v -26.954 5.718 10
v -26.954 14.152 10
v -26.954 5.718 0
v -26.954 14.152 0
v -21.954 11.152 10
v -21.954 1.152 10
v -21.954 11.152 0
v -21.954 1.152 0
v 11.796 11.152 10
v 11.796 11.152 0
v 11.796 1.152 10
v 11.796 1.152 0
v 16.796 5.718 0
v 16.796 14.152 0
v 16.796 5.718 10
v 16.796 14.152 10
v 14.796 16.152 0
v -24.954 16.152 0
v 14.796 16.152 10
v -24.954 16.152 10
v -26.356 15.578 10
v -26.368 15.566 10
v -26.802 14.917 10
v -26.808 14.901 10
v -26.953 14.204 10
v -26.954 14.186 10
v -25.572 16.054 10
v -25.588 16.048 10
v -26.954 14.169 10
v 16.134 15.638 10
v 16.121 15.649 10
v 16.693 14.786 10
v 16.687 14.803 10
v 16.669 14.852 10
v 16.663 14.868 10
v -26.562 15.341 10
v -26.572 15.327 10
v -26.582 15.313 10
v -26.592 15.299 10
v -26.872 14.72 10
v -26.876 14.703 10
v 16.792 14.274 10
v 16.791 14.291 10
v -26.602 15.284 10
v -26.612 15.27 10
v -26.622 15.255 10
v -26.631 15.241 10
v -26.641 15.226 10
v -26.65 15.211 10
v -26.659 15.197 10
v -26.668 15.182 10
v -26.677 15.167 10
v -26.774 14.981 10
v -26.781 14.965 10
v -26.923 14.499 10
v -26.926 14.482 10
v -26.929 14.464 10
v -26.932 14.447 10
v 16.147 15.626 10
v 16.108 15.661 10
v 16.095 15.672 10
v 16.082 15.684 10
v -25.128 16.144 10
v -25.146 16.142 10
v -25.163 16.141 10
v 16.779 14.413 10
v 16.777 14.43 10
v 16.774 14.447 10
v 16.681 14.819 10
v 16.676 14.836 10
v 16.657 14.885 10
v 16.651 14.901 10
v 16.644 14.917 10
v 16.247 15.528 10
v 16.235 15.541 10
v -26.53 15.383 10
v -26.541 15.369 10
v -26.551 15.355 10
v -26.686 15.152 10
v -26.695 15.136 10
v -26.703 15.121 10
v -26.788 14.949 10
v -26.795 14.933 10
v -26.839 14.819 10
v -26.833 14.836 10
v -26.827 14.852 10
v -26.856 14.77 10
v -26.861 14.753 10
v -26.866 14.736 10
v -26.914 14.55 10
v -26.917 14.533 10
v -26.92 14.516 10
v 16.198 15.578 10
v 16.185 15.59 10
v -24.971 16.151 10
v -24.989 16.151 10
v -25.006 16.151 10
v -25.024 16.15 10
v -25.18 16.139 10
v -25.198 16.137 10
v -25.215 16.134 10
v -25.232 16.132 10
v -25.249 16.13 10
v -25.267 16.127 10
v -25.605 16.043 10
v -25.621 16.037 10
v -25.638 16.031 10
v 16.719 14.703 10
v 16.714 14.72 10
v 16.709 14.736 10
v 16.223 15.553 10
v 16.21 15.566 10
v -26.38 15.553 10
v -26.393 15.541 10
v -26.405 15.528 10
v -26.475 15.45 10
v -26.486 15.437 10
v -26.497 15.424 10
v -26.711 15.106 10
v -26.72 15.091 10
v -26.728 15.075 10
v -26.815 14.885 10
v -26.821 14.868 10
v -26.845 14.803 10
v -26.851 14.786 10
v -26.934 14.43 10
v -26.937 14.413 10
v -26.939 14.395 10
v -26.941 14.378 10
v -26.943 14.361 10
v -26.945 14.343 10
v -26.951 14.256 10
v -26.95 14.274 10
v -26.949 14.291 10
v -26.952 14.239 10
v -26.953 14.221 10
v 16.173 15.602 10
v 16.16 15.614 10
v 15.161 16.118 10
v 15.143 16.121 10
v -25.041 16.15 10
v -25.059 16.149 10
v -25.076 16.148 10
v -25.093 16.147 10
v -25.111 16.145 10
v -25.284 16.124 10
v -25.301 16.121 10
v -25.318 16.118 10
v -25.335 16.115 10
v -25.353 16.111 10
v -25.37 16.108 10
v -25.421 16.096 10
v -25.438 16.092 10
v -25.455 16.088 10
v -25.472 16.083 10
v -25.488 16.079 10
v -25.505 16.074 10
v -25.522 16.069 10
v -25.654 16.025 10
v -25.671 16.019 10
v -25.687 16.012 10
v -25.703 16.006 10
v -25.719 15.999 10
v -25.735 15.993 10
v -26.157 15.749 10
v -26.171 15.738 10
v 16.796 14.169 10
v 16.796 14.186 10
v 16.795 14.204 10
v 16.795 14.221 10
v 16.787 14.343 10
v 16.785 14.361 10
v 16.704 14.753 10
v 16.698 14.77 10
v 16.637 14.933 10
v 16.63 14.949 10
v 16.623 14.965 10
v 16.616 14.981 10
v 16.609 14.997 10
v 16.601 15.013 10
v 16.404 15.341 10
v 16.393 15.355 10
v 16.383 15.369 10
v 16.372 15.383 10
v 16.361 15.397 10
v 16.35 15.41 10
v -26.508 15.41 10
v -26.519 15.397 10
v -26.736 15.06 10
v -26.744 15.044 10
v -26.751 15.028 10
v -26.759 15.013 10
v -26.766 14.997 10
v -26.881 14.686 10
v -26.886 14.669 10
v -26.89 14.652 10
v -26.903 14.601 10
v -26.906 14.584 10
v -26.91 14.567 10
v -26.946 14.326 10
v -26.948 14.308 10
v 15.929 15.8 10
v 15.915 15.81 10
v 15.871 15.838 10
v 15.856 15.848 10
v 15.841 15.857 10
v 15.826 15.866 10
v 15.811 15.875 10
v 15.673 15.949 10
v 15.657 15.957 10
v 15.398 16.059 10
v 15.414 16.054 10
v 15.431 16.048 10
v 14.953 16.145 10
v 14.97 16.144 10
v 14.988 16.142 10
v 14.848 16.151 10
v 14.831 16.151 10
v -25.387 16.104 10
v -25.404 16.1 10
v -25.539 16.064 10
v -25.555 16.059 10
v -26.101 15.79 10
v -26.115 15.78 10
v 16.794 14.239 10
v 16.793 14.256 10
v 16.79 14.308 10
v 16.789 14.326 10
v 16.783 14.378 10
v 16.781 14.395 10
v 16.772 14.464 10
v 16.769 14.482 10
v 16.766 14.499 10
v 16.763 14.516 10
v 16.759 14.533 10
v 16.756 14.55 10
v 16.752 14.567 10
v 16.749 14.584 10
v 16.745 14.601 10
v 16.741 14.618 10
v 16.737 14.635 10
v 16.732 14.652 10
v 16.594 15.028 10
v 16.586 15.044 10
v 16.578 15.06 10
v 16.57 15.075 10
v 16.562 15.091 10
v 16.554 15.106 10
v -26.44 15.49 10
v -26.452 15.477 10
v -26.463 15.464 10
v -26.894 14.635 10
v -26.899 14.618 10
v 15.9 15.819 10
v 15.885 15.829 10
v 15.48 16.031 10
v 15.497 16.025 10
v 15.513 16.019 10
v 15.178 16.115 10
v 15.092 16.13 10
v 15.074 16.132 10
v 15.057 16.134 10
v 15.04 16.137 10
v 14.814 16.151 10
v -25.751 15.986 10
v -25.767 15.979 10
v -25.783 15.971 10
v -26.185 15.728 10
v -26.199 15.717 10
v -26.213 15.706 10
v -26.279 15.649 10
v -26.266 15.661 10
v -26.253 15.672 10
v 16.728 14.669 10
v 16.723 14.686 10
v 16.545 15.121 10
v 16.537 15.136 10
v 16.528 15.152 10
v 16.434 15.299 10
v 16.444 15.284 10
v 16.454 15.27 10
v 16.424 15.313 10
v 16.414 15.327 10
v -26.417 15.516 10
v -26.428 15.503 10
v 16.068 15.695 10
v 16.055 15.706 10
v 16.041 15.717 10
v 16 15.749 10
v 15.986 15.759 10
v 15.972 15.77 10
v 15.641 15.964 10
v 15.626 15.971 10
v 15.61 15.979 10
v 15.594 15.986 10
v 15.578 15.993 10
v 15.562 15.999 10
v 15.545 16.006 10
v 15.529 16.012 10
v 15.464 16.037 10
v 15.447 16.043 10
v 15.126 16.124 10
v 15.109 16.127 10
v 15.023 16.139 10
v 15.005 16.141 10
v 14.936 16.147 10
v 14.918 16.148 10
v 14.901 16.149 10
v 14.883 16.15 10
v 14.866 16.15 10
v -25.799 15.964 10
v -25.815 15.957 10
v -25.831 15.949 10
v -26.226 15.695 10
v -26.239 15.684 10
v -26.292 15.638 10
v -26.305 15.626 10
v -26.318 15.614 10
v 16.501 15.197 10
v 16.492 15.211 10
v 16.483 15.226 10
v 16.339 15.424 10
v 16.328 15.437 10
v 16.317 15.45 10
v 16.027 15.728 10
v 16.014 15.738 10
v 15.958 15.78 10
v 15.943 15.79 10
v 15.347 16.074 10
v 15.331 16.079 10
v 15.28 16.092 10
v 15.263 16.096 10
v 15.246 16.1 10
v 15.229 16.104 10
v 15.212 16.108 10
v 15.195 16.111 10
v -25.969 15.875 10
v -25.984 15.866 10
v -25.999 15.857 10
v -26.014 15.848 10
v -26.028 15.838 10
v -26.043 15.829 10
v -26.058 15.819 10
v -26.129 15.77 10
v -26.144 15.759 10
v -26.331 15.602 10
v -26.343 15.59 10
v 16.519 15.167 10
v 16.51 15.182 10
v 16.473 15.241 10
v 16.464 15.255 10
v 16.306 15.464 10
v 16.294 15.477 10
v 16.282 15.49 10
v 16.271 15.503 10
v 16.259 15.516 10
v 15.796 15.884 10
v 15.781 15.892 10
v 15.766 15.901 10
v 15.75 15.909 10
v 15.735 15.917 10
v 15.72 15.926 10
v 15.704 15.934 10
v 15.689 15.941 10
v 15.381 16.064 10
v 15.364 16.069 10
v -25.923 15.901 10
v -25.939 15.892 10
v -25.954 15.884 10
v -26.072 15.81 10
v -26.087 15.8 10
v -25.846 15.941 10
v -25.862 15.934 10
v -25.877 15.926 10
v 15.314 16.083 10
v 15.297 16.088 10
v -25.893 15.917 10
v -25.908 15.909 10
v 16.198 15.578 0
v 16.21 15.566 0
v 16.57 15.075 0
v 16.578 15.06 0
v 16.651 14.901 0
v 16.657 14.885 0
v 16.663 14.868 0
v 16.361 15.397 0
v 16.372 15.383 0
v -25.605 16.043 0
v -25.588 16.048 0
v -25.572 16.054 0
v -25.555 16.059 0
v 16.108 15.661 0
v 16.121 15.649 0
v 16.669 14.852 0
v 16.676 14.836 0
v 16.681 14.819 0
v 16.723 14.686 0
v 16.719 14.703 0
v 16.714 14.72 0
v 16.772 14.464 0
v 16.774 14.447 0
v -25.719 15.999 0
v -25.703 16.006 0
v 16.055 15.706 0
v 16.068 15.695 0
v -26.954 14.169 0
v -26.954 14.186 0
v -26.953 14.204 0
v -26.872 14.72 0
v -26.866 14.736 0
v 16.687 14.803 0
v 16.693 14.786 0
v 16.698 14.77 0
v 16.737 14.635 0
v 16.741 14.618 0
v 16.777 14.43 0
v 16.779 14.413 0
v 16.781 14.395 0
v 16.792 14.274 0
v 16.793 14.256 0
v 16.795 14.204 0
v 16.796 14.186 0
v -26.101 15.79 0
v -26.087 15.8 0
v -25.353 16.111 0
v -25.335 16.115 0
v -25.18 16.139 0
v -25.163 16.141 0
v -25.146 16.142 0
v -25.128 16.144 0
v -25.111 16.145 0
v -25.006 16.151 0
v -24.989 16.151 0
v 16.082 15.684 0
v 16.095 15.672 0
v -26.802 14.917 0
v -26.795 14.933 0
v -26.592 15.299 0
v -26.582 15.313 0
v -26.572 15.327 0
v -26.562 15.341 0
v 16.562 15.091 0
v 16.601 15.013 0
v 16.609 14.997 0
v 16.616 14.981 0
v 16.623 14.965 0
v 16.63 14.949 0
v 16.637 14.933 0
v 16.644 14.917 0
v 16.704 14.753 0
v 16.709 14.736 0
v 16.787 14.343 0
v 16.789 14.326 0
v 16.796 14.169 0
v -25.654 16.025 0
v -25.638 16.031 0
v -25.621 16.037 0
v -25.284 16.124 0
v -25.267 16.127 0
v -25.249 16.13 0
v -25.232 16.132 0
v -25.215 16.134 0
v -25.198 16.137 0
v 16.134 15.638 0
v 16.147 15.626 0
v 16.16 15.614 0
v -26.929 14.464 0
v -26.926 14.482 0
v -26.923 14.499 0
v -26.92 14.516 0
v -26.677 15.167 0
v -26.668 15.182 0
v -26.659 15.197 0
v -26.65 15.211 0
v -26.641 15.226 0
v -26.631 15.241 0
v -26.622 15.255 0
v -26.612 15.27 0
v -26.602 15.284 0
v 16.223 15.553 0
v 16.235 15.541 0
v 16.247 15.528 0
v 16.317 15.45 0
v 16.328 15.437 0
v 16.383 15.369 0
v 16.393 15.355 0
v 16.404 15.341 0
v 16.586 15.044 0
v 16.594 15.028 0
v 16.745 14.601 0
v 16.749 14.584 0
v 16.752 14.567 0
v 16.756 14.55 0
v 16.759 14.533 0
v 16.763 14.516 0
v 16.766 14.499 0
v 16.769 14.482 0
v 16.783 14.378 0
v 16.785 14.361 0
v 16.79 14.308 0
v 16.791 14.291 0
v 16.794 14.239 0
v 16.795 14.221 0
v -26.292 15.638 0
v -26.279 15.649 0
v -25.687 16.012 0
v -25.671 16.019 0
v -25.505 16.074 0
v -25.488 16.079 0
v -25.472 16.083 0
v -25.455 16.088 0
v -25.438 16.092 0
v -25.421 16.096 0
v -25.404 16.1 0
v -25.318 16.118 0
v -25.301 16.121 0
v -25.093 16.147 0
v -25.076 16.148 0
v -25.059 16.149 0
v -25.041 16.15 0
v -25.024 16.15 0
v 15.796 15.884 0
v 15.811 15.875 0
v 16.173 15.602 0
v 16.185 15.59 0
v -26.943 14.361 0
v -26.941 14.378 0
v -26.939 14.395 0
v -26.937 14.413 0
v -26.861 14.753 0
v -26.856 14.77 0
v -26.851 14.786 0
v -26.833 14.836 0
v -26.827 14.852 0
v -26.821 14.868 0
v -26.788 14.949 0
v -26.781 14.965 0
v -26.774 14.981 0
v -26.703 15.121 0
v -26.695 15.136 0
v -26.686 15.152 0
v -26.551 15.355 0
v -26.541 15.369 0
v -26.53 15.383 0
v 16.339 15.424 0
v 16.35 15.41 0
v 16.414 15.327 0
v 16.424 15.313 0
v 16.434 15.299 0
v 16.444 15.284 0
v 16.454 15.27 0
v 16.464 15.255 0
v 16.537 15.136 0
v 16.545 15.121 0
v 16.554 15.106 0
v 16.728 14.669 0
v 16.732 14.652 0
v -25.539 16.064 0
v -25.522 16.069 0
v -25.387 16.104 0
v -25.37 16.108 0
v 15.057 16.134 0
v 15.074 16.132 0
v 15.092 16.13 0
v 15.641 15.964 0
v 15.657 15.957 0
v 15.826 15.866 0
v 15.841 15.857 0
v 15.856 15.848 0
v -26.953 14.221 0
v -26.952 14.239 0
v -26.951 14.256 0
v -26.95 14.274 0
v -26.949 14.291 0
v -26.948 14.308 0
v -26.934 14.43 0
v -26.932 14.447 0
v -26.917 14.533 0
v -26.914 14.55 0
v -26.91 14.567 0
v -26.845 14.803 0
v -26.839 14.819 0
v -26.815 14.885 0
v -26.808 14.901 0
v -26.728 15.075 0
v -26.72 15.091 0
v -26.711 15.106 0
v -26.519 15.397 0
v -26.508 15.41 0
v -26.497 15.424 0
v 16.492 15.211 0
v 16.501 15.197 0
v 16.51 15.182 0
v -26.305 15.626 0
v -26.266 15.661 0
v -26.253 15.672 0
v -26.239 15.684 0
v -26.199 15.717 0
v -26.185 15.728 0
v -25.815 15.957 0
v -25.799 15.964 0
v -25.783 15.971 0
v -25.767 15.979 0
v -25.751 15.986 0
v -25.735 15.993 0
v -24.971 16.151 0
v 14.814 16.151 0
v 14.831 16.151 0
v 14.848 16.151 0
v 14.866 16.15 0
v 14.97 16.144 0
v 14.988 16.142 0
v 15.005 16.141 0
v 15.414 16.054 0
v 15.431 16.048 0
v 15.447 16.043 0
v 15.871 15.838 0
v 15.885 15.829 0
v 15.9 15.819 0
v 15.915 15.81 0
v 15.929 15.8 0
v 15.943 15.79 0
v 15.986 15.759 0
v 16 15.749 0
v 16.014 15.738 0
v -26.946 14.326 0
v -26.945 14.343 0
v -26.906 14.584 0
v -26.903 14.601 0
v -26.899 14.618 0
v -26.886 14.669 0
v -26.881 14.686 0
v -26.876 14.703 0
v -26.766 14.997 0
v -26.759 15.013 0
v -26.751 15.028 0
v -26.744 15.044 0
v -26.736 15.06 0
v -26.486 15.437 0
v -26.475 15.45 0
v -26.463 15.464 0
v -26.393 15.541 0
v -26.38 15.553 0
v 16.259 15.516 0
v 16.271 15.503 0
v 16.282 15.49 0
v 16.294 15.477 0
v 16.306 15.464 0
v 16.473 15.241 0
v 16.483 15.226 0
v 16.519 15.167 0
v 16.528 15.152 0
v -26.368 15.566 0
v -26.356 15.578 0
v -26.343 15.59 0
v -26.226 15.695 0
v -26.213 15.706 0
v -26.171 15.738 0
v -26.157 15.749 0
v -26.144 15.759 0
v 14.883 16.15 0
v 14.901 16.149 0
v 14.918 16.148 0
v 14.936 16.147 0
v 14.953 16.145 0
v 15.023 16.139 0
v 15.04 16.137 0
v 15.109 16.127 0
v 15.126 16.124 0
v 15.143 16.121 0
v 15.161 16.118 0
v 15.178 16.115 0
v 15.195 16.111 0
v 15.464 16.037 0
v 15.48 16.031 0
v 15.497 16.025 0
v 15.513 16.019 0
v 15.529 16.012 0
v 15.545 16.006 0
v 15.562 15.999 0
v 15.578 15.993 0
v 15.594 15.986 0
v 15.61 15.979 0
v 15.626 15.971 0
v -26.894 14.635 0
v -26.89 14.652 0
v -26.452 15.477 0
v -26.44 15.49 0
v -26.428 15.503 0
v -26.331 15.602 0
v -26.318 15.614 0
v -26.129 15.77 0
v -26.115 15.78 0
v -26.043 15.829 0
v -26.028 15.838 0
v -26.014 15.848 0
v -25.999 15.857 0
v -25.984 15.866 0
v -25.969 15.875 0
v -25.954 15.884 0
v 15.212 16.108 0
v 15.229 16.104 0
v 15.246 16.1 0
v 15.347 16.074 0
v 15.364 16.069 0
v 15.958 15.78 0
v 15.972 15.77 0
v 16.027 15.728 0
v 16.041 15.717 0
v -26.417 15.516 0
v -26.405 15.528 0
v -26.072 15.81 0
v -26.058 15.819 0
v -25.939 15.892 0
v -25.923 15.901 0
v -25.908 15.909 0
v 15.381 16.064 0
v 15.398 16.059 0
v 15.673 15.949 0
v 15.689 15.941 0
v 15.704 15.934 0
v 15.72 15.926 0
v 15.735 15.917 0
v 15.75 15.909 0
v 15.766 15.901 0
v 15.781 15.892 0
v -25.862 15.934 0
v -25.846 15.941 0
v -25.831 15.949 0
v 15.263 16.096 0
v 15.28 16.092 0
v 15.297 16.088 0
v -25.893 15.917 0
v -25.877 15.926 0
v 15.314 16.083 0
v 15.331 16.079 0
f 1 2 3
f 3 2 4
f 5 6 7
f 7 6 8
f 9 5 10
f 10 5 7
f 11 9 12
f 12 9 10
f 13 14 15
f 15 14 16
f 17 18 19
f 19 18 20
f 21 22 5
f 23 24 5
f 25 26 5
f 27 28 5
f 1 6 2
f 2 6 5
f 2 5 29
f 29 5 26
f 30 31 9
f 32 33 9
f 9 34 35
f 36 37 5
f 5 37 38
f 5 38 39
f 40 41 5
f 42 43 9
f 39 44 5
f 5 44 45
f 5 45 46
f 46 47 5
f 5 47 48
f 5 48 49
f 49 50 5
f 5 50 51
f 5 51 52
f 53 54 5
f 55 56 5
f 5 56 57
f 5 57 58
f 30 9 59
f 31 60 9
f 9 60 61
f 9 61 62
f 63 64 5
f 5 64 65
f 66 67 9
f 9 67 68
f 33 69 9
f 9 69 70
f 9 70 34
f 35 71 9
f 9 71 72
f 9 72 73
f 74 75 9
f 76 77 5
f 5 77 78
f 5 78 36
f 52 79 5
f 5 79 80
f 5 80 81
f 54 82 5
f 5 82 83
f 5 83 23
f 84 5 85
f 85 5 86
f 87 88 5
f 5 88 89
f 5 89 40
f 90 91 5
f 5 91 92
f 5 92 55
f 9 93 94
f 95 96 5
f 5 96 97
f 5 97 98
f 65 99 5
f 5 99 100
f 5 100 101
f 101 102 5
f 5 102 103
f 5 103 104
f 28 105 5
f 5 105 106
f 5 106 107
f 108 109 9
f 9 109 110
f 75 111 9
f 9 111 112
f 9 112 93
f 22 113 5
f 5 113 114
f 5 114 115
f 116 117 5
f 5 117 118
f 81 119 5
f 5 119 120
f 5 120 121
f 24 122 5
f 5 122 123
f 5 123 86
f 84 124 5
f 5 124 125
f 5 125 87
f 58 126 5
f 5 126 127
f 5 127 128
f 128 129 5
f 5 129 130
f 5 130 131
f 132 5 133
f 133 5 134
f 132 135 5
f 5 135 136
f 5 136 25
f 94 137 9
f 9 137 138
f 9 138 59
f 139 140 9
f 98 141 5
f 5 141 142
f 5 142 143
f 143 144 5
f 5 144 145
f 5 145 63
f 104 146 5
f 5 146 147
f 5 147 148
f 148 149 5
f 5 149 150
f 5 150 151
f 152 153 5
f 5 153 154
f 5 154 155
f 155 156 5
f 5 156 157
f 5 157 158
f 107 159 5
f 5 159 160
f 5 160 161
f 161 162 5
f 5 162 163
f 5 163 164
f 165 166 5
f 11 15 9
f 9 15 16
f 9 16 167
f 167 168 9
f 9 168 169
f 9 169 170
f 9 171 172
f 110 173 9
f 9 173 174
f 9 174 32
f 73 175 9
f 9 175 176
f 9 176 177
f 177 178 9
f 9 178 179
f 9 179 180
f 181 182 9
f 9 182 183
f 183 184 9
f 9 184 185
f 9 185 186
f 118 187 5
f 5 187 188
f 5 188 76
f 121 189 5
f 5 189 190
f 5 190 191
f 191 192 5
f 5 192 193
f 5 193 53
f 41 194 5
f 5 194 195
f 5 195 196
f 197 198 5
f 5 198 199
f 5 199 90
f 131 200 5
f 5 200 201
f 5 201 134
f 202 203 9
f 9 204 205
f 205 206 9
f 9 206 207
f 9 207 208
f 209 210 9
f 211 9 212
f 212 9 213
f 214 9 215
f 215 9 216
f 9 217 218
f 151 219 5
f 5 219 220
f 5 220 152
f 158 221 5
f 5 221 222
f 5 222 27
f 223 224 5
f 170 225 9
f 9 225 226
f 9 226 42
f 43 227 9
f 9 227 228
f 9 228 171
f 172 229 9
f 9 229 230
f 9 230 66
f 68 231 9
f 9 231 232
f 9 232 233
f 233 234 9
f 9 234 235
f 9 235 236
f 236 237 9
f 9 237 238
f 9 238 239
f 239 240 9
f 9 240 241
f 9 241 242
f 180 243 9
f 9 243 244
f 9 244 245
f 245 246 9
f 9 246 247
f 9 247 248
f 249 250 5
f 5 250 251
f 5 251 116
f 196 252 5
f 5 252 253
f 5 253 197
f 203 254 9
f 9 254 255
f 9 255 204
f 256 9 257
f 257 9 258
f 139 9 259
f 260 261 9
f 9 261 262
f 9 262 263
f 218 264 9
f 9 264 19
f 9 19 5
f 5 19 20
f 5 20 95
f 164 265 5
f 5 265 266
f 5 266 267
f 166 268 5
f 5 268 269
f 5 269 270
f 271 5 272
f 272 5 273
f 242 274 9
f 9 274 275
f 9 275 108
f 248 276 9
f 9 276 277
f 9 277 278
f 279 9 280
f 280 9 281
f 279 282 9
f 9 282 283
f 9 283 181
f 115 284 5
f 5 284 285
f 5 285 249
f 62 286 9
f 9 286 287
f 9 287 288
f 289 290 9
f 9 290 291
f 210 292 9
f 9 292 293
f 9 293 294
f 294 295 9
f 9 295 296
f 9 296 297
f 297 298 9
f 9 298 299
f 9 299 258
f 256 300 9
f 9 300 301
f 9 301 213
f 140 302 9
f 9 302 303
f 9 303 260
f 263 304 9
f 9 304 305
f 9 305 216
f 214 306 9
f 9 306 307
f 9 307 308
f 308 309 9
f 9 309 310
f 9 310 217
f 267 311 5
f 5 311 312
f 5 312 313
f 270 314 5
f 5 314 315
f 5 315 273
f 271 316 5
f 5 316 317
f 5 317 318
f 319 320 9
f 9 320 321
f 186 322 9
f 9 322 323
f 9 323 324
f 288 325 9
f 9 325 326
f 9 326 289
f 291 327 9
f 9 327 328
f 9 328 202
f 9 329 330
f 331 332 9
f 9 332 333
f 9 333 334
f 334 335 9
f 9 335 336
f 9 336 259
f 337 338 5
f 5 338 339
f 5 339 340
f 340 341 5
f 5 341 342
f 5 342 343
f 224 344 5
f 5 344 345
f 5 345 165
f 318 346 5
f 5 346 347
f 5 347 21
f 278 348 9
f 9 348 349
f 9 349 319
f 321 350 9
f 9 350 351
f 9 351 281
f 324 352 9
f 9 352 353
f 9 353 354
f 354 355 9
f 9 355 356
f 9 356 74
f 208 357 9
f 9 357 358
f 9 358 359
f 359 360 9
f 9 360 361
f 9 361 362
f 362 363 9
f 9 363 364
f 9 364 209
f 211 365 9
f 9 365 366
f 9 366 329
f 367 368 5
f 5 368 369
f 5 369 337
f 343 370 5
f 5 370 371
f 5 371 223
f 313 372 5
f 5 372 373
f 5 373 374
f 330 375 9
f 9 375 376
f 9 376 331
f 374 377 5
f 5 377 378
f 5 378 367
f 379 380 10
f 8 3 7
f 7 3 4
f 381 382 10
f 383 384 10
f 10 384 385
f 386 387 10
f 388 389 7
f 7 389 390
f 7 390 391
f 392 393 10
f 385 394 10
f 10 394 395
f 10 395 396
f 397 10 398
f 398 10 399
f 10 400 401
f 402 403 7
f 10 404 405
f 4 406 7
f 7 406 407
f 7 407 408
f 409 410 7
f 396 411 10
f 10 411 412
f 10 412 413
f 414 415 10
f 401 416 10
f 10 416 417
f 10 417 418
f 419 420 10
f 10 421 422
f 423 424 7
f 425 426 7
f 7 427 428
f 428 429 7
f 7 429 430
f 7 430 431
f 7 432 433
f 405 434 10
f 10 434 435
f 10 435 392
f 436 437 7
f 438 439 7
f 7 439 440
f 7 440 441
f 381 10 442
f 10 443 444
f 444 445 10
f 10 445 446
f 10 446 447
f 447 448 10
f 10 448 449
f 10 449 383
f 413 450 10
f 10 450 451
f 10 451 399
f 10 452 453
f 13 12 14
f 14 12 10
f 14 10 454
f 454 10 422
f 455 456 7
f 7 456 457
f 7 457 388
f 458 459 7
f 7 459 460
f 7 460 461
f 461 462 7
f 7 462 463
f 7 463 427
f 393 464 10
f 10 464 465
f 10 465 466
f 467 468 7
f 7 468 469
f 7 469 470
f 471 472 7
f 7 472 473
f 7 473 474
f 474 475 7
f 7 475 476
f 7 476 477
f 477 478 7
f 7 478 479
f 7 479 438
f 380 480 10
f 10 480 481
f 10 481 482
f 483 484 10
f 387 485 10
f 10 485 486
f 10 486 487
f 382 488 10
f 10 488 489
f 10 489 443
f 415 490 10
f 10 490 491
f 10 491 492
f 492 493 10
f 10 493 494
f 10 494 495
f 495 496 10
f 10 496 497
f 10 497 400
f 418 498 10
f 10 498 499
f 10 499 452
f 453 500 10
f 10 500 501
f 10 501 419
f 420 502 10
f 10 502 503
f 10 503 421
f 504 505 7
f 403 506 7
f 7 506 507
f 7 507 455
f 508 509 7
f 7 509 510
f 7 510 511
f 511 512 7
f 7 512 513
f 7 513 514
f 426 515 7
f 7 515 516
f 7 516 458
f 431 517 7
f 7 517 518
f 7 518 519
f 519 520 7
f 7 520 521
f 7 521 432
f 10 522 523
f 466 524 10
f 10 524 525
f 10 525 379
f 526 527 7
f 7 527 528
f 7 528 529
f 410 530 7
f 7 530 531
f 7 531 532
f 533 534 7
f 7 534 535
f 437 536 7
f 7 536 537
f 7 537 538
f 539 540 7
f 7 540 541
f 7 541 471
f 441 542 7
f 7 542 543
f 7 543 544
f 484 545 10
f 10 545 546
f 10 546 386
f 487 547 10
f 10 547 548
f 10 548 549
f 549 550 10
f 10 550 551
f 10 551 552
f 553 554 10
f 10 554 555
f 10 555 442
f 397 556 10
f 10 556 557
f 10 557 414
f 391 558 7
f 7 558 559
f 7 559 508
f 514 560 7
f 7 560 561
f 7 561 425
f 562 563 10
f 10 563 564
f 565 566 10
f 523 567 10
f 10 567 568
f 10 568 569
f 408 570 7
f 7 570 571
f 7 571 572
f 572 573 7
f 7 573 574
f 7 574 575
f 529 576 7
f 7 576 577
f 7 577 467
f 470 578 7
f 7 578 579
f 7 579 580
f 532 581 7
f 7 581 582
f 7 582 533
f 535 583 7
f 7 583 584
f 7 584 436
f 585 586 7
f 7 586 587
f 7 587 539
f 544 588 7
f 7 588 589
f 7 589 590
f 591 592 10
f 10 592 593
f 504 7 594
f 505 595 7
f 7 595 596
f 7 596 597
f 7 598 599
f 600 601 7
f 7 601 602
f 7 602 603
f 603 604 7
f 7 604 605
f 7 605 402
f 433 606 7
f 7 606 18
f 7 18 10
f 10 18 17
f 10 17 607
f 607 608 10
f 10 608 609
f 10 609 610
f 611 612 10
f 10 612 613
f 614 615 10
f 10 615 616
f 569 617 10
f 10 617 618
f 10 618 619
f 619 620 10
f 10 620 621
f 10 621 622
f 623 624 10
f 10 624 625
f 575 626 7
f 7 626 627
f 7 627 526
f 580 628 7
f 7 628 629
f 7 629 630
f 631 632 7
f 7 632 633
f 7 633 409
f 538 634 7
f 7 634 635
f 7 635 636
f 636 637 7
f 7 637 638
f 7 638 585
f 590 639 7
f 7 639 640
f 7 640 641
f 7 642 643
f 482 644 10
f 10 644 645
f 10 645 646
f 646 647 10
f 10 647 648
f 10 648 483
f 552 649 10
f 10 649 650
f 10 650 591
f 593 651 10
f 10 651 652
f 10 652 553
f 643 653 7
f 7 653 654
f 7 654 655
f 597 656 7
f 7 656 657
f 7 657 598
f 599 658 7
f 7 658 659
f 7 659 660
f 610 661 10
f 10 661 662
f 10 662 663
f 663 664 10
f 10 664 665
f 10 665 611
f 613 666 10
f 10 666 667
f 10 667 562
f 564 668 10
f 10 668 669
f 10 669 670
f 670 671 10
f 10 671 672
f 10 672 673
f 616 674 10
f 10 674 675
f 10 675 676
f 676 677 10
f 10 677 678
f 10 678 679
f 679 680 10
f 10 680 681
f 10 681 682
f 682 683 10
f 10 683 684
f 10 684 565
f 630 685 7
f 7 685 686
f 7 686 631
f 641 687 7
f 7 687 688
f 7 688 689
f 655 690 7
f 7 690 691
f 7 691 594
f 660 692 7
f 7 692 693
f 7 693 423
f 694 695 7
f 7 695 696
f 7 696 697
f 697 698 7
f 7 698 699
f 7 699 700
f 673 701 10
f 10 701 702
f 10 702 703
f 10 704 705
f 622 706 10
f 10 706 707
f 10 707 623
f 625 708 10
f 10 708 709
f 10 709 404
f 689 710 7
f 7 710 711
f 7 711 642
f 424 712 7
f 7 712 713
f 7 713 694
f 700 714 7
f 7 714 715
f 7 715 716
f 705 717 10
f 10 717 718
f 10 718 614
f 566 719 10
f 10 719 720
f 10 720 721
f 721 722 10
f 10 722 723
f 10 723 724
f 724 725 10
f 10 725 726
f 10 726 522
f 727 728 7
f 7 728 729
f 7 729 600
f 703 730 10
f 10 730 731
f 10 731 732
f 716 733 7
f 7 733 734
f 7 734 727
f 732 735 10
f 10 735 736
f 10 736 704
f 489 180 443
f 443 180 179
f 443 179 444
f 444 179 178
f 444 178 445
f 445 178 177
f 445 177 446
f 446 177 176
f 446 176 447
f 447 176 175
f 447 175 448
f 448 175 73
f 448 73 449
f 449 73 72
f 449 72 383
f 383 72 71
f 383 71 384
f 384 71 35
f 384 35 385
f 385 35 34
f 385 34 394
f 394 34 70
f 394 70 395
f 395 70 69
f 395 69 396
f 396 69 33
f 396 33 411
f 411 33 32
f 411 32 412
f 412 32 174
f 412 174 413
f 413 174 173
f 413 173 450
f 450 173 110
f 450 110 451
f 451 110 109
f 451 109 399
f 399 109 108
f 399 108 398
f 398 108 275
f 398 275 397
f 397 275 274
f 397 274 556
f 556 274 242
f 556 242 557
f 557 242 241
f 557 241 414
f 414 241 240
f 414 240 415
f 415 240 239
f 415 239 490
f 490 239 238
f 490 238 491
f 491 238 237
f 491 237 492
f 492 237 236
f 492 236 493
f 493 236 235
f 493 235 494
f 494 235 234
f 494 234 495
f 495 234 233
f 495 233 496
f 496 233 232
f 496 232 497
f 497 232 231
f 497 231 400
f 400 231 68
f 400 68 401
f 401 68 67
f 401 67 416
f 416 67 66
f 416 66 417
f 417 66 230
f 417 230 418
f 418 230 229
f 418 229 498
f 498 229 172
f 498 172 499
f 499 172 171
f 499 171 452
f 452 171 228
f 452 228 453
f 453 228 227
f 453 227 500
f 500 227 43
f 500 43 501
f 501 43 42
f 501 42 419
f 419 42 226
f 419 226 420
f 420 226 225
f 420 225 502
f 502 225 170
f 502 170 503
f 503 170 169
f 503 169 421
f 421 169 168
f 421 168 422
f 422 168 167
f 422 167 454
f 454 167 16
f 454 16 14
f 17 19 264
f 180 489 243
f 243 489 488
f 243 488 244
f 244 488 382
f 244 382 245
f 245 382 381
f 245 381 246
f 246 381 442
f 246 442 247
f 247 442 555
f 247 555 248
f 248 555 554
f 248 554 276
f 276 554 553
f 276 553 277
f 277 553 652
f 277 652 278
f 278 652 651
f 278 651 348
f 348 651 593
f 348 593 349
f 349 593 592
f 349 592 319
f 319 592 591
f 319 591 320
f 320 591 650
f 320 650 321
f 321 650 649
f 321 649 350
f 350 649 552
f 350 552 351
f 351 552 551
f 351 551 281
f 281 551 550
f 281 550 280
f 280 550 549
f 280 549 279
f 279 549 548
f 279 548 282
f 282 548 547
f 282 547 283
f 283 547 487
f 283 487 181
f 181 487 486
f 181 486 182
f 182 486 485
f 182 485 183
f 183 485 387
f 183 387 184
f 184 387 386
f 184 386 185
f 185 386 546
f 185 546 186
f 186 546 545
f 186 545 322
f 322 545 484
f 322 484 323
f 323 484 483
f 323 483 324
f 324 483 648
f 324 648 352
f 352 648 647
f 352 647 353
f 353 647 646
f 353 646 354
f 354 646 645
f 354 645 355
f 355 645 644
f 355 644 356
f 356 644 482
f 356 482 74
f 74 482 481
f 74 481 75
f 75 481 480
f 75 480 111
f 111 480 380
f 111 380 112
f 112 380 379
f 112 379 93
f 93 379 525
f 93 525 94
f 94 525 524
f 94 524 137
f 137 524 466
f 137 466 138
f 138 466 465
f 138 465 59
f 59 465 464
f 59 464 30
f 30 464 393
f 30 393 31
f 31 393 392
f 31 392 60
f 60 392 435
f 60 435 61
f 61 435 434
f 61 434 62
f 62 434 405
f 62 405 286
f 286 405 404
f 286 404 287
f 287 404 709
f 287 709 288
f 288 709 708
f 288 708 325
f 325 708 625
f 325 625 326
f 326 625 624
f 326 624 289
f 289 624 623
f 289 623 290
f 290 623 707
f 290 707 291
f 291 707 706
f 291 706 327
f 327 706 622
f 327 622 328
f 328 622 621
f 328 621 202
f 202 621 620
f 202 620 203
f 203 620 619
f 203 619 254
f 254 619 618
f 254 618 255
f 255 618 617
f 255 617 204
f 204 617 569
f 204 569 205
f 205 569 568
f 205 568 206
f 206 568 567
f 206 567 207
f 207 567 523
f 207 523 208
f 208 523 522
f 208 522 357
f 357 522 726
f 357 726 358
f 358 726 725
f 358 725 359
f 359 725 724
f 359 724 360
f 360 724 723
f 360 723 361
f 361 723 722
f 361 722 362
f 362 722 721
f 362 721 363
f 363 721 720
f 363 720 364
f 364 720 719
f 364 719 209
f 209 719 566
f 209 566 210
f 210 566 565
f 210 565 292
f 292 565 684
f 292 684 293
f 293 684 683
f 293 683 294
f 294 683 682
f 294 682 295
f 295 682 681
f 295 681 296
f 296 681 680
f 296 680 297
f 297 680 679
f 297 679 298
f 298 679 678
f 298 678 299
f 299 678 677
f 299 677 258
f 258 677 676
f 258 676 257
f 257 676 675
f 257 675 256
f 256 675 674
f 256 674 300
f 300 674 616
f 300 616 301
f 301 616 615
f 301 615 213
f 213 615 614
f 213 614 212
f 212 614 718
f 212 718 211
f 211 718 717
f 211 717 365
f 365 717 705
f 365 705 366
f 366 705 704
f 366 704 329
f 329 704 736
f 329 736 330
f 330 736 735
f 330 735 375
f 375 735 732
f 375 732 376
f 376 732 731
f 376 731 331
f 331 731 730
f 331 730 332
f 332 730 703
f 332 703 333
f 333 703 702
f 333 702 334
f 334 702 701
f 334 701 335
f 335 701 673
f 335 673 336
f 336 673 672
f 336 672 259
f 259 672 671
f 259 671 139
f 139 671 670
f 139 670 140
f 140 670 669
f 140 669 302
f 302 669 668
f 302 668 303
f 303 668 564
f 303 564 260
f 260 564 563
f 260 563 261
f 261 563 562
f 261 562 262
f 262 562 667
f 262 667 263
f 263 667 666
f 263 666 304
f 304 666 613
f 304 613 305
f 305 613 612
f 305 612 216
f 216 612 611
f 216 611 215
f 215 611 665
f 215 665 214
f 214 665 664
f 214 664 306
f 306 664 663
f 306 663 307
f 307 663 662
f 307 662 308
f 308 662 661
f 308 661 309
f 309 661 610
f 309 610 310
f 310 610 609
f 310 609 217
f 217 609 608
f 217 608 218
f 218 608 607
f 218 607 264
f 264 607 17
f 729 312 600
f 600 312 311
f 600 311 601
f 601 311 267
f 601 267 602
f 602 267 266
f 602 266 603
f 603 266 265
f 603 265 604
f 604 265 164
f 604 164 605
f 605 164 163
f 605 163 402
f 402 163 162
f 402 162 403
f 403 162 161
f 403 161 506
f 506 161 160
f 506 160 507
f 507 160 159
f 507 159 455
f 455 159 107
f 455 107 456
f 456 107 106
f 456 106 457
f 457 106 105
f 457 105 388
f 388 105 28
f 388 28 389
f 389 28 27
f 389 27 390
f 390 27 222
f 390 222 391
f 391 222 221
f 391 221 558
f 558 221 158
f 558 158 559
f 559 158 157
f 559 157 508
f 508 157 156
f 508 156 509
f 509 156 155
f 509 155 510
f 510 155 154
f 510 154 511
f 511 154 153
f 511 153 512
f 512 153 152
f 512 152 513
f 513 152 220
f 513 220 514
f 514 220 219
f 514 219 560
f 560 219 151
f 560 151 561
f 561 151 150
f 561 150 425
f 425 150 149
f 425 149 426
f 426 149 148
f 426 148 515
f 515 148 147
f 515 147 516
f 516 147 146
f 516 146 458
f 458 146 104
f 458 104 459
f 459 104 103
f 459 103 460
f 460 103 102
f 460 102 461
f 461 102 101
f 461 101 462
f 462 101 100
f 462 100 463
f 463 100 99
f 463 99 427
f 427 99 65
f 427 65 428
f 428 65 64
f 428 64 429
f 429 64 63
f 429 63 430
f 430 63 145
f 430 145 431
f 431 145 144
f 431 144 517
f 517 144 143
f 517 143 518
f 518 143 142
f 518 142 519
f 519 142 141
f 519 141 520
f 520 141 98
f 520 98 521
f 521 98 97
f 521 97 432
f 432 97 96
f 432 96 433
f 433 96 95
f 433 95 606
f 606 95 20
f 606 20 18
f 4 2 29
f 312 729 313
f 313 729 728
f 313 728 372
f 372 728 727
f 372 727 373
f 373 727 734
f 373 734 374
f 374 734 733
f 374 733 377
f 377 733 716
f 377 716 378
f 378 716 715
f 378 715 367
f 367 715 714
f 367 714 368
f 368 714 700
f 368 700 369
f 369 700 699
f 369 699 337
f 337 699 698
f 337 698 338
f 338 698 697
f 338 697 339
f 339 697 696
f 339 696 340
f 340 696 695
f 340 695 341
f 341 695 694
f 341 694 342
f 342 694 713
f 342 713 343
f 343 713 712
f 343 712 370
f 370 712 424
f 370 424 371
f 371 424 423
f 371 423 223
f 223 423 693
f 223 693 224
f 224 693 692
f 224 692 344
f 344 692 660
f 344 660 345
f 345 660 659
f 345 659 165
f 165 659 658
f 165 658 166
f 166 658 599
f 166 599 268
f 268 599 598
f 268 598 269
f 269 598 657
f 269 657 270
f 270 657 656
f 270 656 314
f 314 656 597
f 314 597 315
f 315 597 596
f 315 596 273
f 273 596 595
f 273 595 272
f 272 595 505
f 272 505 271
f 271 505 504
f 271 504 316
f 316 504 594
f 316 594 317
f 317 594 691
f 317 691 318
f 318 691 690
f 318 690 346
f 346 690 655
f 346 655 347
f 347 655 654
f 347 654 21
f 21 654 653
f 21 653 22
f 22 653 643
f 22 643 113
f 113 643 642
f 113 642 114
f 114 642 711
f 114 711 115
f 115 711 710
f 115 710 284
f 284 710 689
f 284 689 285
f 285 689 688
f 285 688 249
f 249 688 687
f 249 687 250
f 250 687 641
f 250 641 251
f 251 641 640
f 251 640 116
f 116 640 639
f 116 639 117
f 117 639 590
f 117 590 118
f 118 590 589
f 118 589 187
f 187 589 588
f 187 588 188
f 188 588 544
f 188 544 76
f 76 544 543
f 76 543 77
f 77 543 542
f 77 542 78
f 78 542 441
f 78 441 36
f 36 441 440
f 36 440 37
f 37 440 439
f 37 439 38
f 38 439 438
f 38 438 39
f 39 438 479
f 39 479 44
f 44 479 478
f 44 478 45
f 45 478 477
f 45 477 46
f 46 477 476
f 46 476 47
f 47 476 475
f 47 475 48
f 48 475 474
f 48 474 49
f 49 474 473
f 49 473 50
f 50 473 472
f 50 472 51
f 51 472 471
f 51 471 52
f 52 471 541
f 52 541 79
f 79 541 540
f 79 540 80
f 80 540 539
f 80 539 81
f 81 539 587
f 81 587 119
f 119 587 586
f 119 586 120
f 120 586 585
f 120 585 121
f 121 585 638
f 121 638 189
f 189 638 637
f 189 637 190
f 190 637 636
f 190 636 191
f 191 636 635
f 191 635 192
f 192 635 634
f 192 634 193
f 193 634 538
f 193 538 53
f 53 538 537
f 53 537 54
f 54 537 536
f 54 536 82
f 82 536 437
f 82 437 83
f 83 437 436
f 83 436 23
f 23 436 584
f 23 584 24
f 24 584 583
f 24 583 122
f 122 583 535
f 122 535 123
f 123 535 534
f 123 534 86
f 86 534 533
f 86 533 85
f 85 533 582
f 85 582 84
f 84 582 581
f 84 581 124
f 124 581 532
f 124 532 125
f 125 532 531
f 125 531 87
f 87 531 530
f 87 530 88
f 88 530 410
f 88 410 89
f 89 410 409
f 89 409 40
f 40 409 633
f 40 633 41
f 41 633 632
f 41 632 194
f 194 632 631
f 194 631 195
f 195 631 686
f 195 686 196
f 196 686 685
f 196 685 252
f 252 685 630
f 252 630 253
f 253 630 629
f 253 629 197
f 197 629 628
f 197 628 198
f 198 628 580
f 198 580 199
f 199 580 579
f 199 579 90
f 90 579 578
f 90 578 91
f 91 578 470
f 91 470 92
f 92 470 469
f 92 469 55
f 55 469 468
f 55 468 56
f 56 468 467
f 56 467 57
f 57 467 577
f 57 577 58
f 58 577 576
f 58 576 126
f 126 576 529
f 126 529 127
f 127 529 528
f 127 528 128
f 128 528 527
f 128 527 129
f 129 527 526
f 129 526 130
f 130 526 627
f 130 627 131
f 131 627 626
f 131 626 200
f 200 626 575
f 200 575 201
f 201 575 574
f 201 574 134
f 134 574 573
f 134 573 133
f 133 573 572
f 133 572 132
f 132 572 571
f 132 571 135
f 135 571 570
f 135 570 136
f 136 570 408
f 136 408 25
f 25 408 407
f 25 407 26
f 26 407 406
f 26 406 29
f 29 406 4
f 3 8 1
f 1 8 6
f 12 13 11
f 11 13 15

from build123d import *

# Parameters (mm, degrees)
EXTRUDE_1_DEPTH     = 10
FILLET_1_R          = 2
CUT_EXTRUDE_1_DEPTH = 11
CUT_EXTRUDE_2_DEPTH = 11


with BuildPart() as part:
    # 草图1 → 凸台-拉伸1 (new body)
    with BuildSketch(Plane.XY):
        Polygon((-26.953865184, 1.151568381), (-21.953865184, 1.151568381), (-21.953865184, 11.151568381), (11.796134816, 11.151568381), (11.796134816, 1.151568381), (16.796134816, 1.151568381), (16.796134816, 16.151568381), (-26.953865184, 16.151568381), align=None)
    extrude(amount=EXTRUDE_1_DEPTH)

    # 圆角1
    fillet_1_edges = [part.edges().sort_by_distance(p)[0] for p in [
        (-26.953865184, 16.151568381, 5),
        (16.796134816, 16.151568381, 5),
    ]]
    fillet(fillet_1_edges, radius=FILLET_1_R)

    # 草图2 → 切除-拉伸1 (cut, through all)
    with BuildSketch(Plane.XY.offset(10)):
        Polygon((-26.953865184, 1.151568381), (-21.953865184, 1.151568381), (-26.953865184, 5.718181818), align=None)
    extrude(amount=-CUT_EXTRUDE_1_DEPTH, mode=Mode.SUBTRACT)

    # 草图3 → 切除-拉伸2 (cut, through all)
    with BuildSketch(Plane.XY.offset(10)):
        Polygon((16.796134816, 5.718181818), (11.796134816, 1.151568381), (16.796134816, 1.151568381), align=None)
    extrude(amount=-CUT_EXTRUDE_2_DEPTH, mode=Mode.SUBTRACT)


solid = part.part
